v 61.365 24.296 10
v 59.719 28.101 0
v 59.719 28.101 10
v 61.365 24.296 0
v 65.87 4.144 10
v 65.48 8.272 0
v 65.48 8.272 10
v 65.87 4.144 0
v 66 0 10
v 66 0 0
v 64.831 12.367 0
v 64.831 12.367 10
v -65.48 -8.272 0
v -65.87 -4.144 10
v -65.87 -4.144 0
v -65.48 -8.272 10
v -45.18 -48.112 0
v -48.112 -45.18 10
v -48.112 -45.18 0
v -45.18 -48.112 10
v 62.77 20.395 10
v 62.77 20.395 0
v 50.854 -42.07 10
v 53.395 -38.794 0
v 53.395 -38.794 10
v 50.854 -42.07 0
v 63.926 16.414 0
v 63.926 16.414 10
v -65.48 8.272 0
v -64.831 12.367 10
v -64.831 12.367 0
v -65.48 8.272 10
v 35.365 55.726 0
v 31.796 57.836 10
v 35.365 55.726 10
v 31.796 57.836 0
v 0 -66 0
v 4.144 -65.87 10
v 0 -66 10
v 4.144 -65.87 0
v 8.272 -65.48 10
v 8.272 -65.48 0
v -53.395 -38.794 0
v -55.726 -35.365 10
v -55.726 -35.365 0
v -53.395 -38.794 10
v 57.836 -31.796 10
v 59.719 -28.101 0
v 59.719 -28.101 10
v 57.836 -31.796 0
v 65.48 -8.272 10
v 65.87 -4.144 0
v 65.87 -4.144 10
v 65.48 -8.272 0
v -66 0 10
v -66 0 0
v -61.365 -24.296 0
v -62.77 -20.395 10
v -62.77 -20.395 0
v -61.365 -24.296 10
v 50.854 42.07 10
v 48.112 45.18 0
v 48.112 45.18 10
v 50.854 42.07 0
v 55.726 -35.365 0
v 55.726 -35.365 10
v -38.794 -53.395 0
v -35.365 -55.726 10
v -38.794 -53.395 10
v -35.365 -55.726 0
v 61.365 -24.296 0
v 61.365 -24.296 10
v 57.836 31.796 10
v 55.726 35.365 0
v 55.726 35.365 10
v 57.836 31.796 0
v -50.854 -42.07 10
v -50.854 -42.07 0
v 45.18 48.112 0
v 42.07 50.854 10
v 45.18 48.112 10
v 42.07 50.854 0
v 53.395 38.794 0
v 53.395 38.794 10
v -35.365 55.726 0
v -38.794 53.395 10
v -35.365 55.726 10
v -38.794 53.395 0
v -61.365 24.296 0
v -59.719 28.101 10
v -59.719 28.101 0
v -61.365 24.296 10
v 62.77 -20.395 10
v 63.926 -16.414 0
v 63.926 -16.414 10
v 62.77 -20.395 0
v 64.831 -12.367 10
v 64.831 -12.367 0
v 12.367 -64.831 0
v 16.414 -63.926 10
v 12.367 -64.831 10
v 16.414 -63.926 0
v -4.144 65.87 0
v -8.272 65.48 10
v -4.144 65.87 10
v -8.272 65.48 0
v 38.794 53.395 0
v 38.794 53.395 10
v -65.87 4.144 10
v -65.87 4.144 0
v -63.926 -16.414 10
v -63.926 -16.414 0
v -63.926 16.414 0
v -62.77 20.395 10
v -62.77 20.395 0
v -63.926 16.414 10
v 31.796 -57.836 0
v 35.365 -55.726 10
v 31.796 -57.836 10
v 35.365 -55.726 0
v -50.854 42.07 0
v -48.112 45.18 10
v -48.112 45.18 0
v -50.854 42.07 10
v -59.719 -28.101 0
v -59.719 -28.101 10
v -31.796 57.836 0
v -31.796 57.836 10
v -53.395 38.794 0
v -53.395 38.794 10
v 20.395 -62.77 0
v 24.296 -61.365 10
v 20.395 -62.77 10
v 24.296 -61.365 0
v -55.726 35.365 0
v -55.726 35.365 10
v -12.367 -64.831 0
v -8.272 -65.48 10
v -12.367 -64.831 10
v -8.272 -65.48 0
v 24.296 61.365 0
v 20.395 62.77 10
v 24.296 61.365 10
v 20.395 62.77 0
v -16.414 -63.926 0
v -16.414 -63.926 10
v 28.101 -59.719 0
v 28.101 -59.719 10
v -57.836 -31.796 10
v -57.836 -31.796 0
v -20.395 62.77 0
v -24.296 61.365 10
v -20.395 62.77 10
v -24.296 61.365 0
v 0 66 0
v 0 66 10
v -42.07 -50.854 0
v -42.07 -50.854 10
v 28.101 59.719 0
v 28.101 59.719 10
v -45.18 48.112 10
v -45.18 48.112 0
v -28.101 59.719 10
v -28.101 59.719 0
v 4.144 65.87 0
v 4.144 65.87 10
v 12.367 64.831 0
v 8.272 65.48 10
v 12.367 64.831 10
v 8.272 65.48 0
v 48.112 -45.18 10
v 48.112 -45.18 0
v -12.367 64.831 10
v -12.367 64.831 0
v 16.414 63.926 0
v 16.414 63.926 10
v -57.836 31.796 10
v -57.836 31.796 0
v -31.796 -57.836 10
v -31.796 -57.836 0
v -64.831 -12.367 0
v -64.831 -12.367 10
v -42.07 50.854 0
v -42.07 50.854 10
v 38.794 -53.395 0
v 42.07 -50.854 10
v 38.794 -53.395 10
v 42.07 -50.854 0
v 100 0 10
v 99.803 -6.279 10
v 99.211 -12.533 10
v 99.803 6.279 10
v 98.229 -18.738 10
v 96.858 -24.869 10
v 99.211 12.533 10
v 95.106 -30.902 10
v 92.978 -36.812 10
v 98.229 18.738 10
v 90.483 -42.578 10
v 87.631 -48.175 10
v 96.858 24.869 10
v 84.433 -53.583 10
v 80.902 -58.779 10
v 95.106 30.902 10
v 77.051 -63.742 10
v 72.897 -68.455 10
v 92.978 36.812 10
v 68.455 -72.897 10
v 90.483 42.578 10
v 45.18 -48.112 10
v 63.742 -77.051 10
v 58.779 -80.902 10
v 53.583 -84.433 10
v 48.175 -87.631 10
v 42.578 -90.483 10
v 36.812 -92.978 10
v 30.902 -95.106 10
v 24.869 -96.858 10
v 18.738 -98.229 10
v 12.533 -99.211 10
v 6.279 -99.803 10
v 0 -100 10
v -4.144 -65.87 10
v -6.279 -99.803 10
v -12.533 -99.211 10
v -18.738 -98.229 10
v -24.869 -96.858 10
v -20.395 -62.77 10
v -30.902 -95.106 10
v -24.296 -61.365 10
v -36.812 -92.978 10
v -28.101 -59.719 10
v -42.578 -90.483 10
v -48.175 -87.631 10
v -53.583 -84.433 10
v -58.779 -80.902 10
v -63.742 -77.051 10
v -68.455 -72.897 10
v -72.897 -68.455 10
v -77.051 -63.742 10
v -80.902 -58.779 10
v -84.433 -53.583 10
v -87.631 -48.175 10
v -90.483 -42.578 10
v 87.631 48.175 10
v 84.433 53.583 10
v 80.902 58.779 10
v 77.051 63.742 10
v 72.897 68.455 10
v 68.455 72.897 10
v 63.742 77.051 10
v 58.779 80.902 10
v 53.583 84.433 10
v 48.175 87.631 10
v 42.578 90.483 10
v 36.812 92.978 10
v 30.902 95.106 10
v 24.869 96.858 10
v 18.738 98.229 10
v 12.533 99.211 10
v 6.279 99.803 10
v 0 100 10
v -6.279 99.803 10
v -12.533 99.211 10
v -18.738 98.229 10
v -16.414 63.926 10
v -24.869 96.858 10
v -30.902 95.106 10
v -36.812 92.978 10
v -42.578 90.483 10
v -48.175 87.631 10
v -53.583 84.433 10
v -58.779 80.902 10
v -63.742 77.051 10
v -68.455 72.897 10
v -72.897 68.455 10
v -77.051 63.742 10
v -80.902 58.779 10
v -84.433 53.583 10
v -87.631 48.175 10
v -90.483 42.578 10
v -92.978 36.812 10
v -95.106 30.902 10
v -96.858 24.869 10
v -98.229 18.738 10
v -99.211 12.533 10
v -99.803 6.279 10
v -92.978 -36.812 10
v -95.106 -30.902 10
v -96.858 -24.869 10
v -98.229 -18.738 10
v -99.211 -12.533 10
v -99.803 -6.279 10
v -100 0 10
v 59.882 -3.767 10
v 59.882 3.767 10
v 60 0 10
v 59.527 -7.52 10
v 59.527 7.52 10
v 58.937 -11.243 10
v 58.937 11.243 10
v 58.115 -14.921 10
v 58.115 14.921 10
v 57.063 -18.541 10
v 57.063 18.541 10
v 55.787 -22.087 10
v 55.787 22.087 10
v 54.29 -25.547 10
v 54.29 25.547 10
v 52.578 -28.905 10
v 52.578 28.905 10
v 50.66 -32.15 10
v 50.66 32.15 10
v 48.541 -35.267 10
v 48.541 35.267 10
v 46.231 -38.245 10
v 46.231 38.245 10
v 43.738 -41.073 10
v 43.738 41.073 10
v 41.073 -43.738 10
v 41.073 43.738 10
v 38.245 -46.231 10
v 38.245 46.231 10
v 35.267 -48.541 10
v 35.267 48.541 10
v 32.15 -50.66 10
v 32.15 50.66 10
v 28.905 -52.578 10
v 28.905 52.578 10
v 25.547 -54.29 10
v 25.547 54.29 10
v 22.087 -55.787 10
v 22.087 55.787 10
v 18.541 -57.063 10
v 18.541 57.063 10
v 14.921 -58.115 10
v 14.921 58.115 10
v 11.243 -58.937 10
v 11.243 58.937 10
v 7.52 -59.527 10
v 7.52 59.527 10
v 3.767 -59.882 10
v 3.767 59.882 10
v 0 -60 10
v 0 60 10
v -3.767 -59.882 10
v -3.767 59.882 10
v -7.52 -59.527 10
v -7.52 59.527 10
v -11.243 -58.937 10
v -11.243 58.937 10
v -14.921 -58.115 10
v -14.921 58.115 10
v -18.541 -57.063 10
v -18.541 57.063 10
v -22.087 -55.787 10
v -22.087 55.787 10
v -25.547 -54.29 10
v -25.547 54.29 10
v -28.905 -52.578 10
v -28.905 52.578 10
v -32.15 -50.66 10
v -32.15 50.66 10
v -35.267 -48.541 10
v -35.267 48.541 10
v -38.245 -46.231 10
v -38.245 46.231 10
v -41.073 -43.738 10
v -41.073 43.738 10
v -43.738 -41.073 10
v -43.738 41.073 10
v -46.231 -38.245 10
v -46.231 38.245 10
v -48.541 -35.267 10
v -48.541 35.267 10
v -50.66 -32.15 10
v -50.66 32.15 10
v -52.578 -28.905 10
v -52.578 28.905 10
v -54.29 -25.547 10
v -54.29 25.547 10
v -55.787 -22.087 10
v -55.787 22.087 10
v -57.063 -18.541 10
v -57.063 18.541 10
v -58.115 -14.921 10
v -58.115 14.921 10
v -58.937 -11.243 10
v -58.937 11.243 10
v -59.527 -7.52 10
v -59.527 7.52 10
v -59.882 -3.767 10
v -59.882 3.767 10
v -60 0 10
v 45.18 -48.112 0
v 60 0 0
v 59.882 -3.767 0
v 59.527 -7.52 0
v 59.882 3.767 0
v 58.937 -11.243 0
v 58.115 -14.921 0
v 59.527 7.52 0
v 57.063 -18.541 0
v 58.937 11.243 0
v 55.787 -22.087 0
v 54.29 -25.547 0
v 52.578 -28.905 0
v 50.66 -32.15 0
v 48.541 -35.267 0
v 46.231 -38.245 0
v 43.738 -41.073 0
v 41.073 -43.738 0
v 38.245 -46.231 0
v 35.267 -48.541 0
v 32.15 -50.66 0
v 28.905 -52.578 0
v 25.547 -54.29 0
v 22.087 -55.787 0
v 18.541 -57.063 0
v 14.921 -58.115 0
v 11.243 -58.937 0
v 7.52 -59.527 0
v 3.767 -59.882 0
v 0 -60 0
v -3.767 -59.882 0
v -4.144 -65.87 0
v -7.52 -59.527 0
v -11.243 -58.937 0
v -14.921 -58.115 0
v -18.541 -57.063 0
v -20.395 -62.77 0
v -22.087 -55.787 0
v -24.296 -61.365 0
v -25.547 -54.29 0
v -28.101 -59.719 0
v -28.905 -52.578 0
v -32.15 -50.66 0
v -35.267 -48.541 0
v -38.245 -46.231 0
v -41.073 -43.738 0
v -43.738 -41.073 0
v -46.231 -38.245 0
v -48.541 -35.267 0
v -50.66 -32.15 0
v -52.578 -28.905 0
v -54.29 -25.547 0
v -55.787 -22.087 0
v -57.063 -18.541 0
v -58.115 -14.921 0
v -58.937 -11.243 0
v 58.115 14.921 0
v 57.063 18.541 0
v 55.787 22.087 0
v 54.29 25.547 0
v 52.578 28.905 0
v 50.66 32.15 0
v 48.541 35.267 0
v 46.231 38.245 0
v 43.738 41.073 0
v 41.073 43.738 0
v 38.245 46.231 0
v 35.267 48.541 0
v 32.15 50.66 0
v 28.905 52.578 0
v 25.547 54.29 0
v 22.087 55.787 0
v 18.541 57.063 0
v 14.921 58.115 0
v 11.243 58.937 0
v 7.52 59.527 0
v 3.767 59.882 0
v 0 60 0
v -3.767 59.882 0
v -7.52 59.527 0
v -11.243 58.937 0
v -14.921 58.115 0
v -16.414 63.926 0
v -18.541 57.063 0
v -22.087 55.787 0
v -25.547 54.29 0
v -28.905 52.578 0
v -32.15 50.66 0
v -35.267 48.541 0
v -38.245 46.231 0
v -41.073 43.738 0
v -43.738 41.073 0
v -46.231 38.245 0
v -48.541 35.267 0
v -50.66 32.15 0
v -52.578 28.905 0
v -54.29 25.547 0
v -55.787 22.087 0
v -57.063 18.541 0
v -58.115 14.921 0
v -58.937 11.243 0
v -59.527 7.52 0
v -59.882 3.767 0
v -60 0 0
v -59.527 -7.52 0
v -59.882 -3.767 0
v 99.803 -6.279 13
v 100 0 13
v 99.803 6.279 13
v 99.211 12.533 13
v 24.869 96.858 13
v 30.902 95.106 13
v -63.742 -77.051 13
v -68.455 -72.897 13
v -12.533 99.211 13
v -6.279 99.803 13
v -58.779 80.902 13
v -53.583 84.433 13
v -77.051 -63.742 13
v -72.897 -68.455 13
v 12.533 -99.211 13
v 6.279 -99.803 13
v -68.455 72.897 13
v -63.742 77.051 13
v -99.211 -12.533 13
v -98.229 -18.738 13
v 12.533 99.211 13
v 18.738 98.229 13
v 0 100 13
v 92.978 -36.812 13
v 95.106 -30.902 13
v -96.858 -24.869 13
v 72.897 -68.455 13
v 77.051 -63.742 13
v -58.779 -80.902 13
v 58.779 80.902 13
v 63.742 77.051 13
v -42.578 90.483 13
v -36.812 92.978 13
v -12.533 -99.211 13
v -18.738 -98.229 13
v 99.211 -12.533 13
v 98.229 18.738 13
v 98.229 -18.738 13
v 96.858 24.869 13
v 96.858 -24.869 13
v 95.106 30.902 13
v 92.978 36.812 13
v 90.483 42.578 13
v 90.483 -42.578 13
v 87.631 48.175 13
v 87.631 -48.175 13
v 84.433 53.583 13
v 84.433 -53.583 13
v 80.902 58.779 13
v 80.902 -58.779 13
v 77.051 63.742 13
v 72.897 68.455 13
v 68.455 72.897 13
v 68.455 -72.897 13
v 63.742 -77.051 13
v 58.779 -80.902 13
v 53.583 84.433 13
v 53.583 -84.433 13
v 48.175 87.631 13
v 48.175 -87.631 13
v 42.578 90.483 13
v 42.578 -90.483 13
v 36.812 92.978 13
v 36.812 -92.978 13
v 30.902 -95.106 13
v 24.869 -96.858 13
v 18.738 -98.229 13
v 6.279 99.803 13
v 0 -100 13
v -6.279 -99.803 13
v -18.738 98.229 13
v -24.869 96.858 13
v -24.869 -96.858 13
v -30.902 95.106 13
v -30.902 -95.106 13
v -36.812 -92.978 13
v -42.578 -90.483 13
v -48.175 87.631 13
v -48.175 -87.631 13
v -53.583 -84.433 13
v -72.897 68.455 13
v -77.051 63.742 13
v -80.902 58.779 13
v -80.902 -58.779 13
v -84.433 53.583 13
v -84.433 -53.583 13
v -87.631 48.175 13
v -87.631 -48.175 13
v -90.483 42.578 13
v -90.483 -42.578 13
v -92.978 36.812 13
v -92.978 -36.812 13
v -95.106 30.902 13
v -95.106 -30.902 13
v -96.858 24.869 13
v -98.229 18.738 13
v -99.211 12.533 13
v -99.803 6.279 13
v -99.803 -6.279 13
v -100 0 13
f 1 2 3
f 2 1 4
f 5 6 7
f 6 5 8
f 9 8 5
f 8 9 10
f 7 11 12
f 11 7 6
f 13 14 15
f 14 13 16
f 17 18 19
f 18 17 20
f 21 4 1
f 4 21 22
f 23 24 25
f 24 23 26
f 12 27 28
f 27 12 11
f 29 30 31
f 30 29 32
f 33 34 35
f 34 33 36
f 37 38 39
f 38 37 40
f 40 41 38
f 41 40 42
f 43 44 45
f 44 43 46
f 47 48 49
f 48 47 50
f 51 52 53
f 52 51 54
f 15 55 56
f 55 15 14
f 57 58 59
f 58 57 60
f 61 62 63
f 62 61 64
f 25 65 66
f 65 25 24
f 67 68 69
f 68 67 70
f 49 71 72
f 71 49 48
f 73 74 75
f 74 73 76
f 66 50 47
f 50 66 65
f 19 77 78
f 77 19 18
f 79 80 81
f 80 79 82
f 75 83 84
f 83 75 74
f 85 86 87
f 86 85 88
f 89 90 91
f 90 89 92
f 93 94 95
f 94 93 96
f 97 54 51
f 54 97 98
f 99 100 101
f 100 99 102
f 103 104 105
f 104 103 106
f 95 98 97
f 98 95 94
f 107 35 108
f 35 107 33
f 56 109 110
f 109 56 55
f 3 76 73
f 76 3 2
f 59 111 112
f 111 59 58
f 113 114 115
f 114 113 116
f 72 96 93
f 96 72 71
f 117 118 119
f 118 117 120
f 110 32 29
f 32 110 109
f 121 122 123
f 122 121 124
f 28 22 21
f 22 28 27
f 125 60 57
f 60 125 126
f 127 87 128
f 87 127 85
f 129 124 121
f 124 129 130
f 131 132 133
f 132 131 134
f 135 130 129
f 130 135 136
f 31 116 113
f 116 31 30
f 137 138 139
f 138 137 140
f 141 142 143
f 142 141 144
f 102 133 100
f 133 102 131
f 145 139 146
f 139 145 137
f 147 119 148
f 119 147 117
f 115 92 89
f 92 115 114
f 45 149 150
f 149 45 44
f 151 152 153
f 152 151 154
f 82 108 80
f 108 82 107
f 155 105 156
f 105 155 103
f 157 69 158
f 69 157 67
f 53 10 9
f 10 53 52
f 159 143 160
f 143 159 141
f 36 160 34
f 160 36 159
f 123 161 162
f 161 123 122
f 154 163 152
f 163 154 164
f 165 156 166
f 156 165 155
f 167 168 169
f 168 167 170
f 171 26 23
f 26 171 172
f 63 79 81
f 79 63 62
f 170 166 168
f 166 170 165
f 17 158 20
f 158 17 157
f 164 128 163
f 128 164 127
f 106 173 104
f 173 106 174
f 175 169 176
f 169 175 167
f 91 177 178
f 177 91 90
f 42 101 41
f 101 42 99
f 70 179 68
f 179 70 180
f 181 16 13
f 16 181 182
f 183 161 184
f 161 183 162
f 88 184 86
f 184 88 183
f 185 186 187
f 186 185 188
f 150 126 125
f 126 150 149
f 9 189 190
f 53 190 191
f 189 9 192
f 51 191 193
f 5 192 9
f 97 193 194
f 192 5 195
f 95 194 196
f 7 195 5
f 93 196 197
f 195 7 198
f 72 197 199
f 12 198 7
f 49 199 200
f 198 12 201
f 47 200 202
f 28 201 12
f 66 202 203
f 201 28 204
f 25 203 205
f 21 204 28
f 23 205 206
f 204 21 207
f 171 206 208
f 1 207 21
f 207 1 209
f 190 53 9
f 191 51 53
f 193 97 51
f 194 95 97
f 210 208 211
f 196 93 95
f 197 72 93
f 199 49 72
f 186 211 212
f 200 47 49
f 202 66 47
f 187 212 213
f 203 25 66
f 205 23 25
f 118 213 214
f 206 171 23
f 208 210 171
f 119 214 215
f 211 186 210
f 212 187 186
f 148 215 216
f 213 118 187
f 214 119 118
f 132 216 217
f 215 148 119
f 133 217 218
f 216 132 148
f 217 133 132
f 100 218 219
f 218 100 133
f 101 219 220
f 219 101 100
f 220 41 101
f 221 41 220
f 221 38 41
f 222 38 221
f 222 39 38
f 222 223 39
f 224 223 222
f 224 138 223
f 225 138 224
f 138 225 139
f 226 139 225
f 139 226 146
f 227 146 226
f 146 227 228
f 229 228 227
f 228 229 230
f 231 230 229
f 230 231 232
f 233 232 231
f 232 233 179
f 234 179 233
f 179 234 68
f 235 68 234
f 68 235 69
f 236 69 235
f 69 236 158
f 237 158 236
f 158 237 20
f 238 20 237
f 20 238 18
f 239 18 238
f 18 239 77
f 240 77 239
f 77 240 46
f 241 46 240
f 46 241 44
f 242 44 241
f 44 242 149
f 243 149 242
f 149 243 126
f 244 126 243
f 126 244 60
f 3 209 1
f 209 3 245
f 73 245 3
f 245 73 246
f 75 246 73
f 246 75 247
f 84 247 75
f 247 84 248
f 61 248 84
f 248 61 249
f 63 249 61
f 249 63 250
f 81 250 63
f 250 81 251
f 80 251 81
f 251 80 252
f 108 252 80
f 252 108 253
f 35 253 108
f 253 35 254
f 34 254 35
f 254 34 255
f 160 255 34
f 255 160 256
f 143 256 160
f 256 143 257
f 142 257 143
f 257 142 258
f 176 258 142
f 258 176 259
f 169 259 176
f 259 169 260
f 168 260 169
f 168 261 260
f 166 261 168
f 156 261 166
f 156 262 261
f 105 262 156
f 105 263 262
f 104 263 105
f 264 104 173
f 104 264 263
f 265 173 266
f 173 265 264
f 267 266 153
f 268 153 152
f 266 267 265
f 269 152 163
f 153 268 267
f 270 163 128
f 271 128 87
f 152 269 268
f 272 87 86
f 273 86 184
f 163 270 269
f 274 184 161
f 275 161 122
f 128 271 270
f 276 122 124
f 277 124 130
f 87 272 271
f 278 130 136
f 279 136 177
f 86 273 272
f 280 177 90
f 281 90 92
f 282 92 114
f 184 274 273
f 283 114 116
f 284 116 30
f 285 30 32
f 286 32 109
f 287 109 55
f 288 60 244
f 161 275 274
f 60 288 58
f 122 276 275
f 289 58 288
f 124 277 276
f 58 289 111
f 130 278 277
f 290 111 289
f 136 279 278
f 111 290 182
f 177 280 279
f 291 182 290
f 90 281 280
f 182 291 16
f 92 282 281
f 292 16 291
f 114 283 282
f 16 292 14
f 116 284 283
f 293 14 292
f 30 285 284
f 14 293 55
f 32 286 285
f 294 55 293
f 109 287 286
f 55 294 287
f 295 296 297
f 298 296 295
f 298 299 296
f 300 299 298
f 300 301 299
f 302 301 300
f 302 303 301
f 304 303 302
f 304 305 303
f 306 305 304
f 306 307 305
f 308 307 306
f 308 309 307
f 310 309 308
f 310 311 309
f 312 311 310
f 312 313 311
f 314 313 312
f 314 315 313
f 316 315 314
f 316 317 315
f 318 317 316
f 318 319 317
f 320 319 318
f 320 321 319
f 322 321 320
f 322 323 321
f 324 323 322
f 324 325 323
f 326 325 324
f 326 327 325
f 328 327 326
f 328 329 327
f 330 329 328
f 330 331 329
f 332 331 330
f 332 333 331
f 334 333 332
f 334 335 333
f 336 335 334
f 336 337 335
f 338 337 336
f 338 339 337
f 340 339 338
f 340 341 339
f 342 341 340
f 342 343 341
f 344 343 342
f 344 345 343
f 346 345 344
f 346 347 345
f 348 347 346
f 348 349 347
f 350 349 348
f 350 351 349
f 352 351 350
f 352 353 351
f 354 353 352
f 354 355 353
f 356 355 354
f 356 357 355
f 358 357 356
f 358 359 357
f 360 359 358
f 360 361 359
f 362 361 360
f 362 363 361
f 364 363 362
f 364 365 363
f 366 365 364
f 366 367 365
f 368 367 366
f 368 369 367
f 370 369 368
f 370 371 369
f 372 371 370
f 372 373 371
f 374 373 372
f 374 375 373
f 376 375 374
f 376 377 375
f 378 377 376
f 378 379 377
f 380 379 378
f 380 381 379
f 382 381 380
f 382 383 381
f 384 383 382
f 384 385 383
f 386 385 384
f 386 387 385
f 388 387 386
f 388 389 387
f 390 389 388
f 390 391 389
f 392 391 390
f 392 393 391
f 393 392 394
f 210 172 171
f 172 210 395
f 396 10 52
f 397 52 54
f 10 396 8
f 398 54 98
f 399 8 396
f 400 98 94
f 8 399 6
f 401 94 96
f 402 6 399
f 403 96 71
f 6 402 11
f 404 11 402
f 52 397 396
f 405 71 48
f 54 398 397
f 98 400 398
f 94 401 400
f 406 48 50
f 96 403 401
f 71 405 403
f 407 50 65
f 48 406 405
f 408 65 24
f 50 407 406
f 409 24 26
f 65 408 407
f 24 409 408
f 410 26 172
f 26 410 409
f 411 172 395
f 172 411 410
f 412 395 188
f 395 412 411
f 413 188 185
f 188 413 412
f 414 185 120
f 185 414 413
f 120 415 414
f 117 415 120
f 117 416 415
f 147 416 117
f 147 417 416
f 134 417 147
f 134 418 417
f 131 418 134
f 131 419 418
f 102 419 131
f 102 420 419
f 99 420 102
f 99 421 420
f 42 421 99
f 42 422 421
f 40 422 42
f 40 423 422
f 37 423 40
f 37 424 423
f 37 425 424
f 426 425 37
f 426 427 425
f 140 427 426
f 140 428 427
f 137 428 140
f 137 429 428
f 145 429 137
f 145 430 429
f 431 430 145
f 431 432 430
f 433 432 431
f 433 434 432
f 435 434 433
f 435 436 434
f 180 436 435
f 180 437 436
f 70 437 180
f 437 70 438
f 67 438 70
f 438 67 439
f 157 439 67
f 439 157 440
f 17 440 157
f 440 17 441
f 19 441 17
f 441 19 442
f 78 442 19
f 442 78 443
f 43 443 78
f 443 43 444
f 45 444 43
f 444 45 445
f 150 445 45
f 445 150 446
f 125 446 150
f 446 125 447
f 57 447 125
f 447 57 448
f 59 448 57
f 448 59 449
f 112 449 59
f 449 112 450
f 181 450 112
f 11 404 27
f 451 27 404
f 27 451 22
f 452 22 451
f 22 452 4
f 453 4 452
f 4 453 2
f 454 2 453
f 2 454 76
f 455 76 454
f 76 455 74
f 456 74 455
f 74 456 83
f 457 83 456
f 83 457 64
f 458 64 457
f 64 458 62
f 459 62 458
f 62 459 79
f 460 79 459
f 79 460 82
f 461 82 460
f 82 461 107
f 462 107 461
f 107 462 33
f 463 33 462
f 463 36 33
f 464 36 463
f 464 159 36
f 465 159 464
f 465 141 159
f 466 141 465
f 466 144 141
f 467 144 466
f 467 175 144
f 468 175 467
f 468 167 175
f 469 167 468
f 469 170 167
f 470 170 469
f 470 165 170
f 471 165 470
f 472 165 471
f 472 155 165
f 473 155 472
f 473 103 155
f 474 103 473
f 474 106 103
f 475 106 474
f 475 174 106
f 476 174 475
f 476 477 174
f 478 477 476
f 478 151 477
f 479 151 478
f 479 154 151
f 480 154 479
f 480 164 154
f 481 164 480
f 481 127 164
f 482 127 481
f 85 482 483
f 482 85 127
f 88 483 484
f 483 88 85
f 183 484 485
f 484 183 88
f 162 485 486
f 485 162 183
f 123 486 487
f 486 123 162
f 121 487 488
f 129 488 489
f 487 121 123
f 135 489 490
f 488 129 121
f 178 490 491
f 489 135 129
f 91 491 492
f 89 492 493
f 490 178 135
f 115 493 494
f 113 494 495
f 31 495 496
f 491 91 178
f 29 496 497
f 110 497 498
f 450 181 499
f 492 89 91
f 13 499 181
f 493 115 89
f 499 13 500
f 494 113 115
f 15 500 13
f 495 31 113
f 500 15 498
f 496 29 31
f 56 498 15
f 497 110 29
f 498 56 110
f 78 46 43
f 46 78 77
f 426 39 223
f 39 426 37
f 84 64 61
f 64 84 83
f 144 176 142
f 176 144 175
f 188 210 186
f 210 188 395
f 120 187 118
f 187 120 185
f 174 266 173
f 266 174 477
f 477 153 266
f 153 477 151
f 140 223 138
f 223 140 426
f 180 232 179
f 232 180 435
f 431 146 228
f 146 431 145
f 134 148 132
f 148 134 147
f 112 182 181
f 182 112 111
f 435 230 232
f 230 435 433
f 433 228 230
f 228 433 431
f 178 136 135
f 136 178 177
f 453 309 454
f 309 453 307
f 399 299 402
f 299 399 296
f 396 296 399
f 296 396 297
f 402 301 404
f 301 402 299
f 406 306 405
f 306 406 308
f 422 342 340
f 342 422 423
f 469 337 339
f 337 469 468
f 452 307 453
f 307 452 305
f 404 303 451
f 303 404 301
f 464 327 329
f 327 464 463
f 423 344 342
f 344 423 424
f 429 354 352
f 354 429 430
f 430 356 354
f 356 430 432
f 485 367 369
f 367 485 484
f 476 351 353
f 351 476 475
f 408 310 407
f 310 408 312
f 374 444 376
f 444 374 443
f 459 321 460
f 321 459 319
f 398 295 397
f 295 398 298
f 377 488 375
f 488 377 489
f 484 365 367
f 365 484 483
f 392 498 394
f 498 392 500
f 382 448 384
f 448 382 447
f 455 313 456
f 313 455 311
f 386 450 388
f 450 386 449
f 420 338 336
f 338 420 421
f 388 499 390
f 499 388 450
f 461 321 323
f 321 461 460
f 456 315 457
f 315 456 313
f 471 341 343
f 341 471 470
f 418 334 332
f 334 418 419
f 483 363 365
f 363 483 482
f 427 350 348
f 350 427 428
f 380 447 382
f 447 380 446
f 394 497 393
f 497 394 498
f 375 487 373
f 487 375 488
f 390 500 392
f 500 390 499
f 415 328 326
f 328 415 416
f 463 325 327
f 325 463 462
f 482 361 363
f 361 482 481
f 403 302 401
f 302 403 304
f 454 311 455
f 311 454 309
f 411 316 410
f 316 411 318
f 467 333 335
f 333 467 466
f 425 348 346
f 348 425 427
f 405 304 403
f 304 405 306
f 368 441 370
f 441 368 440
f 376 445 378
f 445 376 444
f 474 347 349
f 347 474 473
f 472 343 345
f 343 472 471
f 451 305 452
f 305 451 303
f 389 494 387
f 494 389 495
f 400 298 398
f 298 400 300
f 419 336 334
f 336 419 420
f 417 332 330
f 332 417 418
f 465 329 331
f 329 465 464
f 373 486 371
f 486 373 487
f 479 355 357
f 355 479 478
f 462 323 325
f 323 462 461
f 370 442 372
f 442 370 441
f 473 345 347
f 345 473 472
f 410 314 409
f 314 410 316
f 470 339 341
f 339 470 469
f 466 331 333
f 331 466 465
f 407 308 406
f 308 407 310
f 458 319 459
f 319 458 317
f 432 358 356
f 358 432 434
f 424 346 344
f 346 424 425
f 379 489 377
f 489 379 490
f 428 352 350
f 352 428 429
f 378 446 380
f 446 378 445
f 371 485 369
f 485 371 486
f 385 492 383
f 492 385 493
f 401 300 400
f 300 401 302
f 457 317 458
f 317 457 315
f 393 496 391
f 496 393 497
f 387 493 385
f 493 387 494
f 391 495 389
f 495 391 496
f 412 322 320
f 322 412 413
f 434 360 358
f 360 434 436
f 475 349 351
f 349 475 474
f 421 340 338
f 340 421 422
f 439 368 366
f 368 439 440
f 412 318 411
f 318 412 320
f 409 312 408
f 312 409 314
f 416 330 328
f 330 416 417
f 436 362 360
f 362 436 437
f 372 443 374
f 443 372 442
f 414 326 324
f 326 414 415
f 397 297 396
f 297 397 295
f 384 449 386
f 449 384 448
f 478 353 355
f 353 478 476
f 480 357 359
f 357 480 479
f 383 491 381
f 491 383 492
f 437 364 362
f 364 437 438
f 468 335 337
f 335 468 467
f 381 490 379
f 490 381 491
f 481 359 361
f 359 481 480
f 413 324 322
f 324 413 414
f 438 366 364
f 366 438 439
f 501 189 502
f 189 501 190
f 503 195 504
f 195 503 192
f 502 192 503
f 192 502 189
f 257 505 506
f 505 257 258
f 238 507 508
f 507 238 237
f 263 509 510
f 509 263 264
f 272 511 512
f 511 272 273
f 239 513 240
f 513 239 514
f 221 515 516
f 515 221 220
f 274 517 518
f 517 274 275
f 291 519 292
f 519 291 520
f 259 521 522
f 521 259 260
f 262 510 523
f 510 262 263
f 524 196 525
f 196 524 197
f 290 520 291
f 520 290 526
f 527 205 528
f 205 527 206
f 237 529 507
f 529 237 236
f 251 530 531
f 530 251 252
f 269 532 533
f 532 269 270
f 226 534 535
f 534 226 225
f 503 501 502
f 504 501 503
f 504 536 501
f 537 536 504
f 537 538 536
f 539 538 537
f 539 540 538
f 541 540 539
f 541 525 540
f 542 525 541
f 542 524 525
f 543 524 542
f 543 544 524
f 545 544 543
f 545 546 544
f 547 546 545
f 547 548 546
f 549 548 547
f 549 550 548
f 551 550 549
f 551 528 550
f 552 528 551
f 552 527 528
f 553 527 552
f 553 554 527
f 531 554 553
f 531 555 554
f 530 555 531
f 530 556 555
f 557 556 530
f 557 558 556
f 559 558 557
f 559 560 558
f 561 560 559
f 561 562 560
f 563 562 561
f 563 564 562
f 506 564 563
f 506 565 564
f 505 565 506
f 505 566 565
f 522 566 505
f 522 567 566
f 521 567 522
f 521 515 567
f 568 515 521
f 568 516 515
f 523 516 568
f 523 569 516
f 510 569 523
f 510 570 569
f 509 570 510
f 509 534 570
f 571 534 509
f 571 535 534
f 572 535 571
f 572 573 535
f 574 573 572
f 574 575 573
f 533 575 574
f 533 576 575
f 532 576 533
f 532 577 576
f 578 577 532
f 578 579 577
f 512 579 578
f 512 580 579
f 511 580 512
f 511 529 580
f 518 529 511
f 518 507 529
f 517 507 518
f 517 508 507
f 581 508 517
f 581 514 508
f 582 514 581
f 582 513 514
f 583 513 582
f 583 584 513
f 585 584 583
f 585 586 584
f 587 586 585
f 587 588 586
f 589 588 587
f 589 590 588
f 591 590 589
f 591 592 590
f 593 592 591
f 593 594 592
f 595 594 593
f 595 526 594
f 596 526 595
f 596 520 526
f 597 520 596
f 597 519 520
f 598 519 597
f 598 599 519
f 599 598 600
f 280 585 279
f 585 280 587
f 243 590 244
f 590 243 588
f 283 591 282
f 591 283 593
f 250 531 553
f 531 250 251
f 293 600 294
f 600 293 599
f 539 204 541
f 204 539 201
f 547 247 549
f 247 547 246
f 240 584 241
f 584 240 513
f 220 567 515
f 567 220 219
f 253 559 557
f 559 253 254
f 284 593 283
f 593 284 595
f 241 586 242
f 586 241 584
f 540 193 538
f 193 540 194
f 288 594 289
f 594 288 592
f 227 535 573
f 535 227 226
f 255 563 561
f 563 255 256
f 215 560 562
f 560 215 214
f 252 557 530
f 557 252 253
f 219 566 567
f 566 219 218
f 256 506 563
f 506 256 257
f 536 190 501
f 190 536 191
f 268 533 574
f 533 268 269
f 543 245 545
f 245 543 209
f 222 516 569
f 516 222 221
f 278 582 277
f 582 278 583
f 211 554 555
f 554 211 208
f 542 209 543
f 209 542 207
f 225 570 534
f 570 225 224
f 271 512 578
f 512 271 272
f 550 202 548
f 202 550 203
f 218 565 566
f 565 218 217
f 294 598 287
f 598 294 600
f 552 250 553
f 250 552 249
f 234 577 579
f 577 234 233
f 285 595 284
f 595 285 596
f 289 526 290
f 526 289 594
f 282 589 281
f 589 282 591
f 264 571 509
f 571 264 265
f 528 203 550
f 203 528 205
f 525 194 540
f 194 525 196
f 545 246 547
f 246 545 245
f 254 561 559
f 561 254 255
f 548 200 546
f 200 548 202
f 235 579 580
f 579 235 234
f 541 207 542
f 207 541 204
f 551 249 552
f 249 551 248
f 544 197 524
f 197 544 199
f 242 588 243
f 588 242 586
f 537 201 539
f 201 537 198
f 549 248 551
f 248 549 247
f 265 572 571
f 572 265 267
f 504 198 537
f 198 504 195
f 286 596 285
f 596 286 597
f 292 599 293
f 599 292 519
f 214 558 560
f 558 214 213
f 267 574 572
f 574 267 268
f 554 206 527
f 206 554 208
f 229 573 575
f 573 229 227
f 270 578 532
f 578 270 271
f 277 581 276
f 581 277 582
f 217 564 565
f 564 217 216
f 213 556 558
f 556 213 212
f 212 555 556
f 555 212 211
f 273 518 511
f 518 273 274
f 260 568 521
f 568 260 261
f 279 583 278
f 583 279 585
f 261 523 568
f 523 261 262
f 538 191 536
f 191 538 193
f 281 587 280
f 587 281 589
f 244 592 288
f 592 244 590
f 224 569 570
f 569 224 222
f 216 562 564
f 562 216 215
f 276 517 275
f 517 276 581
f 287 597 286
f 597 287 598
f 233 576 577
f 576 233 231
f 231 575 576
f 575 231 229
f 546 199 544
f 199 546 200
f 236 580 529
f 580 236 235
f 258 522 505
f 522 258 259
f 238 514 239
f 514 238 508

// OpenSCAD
// Christmas Tree Stand
// Ring with flat top plate

// Ring parameters
ring_inner_diameter = 120;  // mm
ring_thickness = 6;         // wall thickness in mm
ring_height = 10;           // height of the ring (adjust as needed)
ring_outer_diameter = ring_inner_diameter + (2 * ring_thickness);  // 140mm

// Top plate parameters
plate_diameter = 200;       // mm
plate_thickness = 3;        // mm

// Ring (hollow cylinder)
difference() {
    cylinder(d = ring_outer_diameter, h = ring_height, $fn = 100);
    translate([0, 0, -0.1])
        cylinder(d = ring_inner_diameter, h = ring_height + 0.2, $fn = 100);
}

// Top flat plate (sits on top of the ring)
translate([0, 0, ring_height])
    cylinder(d = plate_diameter, h = plate_thickness, $fn = 100);
